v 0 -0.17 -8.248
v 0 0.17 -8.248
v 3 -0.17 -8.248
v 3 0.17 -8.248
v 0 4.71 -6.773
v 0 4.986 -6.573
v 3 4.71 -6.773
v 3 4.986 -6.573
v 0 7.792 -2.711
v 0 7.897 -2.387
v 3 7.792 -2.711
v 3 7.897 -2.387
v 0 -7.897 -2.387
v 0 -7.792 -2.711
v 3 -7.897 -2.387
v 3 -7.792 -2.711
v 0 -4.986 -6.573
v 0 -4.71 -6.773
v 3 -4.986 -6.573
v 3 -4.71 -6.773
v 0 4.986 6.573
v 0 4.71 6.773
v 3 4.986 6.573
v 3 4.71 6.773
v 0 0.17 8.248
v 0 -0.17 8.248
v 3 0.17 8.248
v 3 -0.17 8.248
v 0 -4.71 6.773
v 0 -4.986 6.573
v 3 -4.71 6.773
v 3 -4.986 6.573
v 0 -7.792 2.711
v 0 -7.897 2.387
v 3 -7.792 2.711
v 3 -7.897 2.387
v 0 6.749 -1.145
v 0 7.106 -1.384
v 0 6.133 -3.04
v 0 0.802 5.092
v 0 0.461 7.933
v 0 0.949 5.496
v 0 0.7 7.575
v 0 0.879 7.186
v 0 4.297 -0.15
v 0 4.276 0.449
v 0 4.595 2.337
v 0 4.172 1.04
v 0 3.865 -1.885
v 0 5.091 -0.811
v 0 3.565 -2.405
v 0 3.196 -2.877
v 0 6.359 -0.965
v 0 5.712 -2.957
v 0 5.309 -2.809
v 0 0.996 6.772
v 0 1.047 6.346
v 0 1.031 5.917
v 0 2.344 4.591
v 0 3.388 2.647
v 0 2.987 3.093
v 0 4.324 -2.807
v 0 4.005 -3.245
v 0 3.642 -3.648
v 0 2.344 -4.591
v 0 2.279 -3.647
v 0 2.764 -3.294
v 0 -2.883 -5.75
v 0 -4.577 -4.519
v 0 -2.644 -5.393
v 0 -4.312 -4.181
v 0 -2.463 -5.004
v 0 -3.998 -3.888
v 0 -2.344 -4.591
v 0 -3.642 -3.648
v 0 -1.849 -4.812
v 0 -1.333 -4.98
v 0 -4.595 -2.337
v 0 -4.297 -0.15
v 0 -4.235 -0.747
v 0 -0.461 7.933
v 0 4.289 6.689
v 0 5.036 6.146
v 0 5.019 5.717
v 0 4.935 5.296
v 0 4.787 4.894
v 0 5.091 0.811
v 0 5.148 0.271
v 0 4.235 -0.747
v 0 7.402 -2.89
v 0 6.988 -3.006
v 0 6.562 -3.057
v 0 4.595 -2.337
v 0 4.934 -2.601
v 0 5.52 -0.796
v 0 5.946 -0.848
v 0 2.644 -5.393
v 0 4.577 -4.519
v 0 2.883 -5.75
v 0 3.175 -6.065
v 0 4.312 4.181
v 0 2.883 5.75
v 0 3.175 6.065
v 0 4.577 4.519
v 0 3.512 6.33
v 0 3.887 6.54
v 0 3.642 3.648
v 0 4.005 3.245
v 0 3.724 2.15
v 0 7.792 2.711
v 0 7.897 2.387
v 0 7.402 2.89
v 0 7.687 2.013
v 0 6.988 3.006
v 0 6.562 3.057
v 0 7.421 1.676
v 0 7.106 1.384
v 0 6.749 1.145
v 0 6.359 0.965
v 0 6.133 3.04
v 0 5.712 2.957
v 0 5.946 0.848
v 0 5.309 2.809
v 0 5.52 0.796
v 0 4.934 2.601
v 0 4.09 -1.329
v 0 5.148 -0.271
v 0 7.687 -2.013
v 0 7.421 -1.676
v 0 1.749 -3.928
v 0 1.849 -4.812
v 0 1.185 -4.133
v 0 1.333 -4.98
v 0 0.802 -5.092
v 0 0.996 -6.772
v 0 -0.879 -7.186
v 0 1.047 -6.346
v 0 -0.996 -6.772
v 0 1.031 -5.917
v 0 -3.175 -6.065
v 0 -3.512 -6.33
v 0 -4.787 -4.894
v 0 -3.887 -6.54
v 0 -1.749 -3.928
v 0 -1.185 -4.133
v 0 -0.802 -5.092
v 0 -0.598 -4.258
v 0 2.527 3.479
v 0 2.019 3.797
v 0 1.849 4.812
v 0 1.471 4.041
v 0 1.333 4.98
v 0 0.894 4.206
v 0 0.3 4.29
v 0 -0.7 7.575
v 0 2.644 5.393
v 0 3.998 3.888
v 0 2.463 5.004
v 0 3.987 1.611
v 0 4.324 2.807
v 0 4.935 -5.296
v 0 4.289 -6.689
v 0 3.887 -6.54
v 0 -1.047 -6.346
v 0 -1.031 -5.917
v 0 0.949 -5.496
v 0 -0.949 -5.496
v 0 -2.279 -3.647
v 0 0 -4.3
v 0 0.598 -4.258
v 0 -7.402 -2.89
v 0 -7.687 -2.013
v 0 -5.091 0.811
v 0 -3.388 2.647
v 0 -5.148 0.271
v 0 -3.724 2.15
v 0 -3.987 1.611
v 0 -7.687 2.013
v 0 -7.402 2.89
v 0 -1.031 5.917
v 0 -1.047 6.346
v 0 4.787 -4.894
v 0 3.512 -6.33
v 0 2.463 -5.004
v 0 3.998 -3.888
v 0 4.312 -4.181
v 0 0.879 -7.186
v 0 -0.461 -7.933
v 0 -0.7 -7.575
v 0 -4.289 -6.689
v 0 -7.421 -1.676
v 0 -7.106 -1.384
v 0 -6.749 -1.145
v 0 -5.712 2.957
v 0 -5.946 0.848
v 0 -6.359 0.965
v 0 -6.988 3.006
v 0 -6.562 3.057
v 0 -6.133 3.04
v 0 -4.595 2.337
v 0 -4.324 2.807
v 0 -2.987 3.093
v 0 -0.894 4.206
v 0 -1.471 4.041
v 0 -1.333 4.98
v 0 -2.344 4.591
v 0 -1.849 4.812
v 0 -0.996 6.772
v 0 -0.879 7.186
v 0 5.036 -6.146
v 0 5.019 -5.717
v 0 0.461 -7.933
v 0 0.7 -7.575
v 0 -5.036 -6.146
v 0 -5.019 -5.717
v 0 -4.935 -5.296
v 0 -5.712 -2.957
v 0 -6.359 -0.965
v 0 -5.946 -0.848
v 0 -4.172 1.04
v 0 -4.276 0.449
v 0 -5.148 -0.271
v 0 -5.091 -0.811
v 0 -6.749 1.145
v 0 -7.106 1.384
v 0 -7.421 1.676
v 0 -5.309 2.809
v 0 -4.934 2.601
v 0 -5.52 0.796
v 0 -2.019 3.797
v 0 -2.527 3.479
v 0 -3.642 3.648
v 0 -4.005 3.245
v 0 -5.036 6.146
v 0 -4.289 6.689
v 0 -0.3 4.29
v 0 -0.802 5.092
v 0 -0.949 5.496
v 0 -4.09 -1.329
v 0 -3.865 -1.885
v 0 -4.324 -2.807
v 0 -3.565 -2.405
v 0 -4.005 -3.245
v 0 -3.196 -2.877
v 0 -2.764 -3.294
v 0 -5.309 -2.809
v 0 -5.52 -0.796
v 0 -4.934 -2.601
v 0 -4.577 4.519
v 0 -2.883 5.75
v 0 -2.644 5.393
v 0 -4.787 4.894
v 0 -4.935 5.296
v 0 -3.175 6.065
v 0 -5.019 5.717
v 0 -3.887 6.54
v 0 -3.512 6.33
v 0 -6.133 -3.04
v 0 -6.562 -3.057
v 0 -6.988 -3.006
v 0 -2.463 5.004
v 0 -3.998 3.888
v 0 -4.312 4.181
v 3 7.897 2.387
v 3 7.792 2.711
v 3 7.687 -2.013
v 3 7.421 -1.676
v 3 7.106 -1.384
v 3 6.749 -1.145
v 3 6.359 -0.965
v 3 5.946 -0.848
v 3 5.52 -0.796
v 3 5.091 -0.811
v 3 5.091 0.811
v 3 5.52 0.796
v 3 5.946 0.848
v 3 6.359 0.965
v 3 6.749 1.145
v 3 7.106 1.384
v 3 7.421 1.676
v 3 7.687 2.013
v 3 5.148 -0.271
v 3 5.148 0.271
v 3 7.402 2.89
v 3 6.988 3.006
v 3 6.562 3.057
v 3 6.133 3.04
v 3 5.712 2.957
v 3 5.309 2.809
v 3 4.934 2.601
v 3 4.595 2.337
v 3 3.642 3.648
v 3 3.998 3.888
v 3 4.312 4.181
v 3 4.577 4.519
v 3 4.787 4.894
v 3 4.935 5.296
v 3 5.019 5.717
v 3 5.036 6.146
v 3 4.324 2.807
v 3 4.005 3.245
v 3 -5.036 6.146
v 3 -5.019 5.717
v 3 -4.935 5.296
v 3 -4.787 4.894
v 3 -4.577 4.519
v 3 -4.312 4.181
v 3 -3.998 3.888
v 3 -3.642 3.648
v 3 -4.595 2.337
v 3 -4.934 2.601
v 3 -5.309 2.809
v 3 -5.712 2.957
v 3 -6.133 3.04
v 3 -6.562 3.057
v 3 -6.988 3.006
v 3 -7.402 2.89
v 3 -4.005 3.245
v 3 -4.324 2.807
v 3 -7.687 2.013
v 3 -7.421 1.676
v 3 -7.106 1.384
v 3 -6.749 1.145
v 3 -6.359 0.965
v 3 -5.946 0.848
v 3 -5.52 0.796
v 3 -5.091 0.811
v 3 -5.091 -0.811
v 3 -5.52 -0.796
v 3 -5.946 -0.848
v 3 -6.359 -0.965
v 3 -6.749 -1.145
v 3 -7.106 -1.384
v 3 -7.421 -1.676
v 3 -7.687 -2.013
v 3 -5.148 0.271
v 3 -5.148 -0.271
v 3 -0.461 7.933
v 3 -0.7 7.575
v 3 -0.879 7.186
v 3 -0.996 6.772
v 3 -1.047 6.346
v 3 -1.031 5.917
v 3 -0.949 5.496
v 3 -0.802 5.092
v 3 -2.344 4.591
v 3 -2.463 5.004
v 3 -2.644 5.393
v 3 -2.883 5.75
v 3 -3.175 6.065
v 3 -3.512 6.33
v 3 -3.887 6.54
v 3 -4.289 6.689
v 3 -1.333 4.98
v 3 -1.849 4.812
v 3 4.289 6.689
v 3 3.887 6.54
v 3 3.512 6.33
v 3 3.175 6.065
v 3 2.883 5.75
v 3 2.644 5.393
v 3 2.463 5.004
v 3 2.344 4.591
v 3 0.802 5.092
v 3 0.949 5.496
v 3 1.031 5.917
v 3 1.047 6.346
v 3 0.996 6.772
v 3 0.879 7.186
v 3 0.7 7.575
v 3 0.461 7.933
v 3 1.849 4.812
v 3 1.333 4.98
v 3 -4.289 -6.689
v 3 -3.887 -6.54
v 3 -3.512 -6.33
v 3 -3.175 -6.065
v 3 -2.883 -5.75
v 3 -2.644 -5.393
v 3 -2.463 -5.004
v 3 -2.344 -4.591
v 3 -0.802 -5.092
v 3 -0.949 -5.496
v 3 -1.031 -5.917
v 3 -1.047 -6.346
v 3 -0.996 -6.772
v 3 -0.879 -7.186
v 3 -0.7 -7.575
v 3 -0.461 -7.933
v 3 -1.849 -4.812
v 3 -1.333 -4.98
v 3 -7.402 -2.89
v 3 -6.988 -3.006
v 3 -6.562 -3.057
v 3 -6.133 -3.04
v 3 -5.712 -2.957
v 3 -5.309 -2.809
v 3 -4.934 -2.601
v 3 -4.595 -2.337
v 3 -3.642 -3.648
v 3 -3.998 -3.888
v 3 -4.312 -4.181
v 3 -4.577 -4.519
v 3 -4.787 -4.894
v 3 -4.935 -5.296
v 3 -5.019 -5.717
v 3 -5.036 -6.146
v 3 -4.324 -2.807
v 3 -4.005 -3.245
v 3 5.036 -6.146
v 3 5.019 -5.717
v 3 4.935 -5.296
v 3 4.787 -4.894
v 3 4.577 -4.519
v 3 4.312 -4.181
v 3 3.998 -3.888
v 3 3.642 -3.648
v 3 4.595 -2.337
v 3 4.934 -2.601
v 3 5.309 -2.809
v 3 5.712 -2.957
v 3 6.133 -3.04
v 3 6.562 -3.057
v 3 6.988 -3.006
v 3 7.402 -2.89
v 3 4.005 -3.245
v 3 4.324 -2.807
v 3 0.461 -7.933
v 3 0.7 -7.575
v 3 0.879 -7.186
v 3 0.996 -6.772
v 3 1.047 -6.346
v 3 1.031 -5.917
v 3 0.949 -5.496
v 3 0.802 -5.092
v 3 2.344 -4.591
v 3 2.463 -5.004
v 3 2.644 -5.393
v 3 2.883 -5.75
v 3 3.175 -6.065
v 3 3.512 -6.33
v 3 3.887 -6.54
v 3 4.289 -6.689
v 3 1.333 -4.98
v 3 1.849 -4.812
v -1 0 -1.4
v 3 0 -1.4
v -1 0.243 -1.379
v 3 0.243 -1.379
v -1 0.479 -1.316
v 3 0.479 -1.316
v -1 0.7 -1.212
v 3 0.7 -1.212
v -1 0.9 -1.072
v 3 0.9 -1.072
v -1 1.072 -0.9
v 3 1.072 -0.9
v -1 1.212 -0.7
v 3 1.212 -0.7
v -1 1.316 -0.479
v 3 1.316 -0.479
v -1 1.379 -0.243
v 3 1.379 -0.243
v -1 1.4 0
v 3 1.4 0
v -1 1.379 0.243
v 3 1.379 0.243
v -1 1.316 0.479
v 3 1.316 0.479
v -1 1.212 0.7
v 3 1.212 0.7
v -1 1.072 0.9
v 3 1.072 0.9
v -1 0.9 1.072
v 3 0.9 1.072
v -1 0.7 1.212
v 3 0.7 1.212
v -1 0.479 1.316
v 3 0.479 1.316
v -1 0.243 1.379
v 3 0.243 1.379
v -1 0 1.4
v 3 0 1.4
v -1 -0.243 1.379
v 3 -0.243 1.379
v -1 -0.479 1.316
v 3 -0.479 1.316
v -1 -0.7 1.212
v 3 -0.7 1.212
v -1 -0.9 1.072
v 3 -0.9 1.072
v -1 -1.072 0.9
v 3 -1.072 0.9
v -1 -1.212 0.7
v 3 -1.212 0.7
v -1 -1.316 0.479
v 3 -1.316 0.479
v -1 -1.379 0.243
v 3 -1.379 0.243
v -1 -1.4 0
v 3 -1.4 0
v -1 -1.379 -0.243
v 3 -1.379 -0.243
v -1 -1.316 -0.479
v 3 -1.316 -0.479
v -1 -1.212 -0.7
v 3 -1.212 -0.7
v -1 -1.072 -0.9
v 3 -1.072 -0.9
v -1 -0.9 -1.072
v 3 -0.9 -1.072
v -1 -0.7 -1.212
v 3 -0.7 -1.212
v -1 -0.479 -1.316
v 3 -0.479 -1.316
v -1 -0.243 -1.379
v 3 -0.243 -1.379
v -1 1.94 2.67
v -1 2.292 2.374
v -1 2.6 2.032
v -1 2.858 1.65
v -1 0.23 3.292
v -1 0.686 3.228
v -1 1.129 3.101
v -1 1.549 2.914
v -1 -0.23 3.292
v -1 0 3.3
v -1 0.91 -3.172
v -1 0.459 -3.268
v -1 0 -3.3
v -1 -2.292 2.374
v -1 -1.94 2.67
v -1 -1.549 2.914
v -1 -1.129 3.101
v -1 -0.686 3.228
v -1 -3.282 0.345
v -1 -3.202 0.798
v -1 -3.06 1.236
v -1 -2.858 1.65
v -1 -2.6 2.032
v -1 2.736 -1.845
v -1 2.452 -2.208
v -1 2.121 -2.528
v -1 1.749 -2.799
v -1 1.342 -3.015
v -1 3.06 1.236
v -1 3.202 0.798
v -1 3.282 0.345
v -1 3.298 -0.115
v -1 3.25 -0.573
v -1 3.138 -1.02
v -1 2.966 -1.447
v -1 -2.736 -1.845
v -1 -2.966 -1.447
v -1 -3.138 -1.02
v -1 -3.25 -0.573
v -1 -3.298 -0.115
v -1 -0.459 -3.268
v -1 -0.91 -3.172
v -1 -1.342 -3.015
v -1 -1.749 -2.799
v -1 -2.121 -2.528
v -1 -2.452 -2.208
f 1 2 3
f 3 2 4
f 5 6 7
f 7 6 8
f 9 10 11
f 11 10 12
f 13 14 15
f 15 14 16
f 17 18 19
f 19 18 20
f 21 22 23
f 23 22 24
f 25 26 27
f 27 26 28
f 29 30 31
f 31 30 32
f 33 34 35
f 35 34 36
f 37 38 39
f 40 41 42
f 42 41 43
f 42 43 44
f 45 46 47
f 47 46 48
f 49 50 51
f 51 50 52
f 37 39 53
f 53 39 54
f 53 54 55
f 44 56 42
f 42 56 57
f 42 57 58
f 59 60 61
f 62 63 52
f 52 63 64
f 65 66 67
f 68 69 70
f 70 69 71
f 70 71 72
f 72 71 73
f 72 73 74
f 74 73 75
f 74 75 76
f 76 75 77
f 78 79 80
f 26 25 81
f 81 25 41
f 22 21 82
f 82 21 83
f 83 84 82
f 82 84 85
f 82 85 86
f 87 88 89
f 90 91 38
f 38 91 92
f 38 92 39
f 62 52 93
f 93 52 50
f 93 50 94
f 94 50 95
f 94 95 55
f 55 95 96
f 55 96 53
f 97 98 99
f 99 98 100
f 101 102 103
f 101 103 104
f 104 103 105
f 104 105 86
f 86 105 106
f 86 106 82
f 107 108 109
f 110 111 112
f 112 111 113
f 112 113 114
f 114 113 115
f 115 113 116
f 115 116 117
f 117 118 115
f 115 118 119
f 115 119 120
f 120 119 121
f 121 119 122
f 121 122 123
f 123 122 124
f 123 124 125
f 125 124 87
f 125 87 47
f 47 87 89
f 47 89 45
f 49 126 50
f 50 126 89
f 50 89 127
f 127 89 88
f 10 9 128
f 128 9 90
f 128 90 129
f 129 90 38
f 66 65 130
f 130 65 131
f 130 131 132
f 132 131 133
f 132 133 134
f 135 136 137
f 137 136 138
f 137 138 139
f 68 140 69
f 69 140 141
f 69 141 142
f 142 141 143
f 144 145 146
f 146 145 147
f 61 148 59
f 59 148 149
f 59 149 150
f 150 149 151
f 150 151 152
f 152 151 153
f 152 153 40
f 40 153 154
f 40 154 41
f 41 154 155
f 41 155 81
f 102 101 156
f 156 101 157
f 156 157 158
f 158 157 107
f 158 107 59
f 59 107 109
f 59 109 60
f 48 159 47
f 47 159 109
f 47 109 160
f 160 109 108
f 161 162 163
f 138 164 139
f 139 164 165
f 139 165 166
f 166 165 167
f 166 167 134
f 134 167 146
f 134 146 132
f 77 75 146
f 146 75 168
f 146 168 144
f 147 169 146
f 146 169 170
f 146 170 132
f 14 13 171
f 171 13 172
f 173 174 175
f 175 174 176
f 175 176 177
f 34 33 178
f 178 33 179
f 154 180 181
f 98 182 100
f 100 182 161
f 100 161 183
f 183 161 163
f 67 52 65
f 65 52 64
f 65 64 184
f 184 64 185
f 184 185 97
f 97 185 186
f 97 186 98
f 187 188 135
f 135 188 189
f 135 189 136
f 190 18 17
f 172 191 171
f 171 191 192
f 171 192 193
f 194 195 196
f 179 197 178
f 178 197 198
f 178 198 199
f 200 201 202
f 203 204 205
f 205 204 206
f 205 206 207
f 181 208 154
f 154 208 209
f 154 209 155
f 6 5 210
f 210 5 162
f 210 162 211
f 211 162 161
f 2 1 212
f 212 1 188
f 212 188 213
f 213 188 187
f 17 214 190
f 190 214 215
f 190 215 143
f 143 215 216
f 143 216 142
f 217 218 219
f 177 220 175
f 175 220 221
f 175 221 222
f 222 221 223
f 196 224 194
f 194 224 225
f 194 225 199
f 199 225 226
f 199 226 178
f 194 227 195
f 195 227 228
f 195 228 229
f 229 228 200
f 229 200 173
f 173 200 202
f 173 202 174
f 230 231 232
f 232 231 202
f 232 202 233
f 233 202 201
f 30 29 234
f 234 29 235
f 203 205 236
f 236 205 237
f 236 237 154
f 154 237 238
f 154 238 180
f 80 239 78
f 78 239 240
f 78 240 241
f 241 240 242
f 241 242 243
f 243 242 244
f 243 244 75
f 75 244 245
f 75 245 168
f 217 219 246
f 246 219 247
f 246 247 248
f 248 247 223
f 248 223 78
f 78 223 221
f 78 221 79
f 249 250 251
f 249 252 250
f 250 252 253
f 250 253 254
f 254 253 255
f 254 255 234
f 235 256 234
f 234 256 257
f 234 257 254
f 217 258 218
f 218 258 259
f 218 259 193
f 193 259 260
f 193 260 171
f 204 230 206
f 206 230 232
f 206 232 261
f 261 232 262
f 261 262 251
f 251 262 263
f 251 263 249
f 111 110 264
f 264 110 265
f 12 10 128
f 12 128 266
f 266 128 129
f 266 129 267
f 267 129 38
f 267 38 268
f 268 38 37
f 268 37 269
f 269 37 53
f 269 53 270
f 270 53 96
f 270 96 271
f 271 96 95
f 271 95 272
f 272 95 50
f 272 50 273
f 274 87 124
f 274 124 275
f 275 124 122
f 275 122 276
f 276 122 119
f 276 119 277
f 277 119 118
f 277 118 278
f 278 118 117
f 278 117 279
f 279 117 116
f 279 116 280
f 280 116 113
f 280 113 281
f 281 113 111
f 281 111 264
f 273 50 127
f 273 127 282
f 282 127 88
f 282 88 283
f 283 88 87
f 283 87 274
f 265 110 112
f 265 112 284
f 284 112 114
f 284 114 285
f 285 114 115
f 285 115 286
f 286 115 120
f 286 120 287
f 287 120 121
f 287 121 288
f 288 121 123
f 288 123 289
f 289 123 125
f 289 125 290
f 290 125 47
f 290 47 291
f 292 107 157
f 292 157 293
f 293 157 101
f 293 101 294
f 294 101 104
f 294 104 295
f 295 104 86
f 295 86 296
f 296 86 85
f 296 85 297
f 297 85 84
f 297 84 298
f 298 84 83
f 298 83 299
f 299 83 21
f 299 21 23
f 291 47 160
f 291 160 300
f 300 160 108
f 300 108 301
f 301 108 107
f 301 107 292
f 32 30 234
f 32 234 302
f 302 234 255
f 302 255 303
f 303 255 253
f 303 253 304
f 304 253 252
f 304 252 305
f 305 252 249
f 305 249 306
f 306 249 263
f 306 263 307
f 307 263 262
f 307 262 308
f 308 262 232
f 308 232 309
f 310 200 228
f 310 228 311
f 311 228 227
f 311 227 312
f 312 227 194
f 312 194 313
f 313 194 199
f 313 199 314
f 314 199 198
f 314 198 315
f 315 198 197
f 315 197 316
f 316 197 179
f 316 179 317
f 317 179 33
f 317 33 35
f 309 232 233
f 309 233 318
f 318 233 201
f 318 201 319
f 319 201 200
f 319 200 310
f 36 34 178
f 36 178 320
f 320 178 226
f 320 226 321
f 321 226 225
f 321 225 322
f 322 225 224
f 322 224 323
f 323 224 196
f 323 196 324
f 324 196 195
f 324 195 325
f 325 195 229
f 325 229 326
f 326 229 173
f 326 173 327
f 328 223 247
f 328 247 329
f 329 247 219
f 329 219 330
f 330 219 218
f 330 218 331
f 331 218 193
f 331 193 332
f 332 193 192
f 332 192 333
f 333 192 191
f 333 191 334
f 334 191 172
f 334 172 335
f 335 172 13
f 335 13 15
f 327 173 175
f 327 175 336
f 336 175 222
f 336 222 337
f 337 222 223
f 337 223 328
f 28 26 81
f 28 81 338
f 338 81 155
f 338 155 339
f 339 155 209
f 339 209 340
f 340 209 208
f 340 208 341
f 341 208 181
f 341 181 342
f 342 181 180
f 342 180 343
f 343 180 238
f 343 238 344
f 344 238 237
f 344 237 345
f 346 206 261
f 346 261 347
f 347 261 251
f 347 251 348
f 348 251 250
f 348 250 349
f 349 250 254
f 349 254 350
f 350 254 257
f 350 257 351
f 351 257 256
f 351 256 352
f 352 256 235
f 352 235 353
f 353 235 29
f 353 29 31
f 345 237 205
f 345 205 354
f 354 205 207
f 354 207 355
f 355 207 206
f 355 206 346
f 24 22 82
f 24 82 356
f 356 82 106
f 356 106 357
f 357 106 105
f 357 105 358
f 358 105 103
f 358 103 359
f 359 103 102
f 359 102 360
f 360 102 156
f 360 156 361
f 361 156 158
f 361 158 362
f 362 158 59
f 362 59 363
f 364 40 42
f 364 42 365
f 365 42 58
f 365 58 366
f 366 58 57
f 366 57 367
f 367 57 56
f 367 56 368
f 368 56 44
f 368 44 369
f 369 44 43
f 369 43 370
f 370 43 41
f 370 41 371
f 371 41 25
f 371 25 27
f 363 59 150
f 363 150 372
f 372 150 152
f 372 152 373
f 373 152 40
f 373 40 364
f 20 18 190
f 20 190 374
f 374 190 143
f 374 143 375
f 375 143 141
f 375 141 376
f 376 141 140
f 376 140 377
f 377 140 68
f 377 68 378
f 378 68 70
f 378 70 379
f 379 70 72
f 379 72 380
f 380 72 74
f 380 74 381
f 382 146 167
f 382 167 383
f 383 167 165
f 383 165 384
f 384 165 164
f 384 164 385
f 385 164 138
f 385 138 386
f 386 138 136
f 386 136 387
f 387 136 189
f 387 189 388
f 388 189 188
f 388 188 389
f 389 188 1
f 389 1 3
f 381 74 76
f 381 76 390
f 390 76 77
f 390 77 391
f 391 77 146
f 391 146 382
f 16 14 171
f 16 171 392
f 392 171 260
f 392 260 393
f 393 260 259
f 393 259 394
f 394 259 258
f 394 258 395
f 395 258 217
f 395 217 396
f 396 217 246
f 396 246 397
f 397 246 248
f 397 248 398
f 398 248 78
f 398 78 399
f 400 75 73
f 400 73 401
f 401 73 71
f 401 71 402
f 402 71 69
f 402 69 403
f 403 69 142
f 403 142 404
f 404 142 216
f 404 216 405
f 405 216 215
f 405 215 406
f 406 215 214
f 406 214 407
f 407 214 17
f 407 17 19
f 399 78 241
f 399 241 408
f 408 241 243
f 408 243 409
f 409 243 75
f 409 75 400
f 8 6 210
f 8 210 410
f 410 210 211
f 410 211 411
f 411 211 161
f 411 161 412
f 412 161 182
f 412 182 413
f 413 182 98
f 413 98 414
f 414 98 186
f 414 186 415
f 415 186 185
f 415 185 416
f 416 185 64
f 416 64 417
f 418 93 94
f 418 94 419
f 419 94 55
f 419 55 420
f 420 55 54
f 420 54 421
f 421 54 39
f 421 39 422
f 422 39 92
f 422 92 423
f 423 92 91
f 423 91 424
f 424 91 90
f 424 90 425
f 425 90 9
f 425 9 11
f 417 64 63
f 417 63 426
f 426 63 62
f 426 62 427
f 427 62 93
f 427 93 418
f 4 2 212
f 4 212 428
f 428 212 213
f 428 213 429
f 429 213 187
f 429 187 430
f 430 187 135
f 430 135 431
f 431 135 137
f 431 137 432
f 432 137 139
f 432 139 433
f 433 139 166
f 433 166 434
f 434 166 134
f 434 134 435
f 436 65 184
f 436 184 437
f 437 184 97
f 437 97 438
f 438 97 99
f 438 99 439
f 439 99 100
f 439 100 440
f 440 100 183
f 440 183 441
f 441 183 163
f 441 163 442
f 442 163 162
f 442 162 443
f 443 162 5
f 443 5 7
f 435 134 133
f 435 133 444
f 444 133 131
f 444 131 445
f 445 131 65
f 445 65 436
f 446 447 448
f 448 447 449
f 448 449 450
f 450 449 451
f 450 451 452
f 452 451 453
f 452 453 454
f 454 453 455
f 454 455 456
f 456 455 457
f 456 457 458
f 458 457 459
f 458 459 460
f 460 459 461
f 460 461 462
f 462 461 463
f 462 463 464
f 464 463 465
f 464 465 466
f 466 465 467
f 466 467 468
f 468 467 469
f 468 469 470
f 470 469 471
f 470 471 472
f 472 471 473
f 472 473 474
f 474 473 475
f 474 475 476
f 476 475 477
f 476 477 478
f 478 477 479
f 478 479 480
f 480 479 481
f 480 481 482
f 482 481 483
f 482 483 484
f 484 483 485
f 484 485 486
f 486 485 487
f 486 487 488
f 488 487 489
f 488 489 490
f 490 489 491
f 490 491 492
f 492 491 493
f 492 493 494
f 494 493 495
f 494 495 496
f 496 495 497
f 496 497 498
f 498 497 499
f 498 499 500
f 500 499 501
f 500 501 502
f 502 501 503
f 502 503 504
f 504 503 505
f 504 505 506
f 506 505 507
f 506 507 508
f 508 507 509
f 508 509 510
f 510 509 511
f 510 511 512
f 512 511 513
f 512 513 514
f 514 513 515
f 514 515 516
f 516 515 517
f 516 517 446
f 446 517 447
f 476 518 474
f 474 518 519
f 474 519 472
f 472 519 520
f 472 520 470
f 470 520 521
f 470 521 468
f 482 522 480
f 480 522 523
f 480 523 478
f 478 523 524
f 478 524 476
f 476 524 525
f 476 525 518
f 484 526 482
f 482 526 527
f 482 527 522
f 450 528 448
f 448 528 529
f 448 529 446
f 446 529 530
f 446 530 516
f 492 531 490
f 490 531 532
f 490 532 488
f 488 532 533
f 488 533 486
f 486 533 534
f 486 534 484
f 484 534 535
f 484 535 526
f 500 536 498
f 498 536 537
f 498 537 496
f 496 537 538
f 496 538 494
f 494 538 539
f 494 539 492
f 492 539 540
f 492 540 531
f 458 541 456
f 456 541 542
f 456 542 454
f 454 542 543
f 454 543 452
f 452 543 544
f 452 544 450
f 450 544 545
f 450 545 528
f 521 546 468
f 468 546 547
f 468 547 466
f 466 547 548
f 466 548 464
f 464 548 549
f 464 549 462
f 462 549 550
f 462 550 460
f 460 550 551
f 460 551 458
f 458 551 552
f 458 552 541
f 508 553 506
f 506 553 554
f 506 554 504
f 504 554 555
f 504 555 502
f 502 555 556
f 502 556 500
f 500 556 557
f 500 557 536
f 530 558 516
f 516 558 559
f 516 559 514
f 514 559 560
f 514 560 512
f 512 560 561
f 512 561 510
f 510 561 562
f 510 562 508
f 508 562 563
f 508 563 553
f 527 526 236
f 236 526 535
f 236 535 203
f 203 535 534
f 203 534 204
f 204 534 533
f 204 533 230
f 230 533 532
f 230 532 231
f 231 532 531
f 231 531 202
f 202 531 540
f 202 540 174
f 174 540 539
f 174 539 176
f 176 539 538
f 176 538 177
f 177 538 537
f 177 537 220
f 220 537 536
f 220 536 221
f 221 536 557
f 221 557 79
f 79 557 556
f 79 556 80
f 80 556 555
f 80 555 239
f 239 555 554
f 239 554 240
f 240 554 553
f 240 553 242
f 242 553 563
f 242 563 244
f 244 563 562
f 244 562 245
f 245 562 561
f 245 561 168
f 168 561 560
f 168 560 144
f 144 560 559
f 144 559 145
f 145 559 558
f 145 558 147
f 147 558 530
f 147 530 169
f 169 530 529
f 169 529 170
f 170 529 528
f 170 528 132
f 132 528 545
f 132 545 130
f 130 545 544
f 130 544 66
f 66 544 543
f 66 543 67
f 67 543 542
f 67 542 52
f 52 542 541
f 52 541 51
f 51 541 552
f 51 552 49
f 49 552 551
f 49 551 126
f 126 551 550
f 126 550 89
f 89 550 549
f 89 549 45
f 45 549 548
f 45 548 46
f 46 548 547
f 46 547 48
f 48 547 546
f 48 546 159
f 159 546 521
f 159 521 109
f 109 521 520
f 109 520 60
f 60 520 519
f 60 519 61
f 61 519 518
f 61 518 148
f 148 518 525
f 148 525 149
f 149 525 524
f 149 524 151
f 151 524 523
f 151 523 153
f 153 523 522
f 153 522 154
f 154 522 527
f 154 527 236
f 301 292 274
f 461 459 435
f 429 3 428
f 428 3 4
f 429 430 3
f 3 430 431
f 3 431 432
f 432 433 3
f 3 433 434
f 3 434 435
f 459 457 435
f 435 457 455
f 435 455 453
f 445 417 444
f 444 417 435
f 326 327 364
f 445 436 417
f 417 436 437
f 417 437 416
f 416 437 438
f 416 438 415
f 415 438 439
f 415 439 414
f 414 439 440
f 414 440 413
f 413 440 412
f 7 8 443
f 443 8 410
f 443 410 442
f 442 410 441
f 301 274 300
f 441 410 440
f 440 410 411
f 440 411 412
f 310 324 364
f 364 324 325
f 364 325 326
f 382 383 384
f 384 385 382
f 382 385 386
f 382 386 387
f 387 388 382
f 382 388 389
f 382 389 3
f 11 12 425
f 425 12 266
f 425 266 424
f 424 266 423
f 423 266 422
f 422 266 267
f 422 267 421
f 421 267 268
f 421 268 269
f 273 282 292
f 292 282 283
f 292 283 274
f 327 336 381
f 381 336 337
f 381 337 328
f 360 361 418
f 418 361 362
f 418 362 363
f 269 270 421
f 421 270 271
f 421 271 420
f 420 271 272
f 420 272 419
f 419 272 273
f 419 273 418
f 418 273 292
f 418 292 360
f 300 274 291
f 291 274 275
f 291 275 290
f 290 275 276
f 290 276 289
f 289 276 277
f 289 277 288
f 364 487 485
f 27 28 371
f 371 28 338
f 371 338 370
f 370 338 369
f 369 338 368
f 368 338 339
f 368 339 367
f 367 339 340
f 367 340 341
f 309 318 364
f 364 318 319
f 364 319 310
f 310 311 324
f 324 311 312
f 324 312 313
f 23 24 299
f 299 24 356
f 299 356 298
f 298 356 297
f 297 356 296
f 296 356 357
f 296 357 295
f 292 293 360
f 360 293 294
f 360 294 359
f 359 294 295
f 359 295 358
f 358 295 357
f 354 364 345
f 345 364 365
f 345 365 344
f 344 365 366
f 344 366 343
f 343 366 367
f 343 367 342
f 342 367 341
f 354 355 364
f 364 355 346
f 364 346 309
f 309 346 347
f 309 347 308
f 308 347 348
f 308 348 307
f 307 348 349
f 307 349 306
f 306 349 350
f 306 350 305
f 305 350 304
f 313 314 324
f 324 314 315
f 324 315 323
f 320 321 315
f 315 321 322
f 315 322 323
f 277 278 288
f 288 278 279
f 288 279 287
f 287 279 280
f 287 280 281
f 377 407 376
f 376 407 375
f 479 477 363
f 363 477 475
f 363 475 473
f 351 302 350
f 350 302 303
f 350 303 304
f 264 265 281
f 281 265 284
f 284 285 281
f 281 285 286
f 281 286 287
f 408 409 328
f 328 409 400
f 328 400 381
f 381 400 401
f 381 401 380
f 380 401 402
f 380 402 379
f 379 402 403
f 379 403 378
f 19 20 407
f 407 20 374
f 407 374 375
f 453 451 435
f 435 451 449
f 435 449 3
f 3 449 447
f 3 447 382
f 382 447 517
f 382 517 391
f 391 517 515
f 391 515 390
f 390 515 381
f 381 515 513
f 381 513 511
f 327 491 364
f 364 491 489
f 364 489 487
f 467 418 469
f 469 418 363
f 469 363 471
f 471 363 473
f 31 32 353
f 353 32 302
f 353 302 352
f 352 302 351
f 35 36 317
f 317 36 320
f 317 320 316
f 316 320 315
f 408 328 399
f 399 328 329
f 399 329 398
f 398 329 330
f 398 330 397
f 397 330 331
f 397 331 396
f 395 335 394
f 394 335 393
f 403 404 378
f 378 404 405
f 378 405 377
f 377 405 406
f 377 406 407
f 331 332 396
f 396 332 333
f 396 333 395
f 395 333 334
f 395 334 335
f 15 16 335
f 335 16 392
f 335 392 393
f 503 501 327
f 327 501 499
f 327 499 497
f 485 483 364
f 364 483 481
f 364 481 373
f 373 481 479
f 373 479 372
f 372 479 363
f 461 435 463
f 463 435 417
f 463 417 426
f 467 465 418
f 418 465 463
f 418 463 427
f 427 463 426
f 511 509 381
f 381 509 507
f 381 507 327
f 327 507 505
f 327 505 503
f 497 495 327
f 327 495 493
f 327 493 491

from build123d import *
from build123d.topology import SkipClean

# Parameters (mm, degrees)
BASPROSKE_W         = 2
BASPROSKE_H         = 8.25
TOOTHCUT_DEPTH      = 12.837440602
TEETHCUTS_COUNT     = 10
TEETHCUTS_ANGLE     = 324
BORSKE_R            = 2.5
BORE_DEPTH          = 50.0000508
SKETCH1_R           = 2.5
SKETCH1_R_2         = 1.4
BOSS_EXTRUDE1_DEPTH = 2
SKETCH2_R           = 2.8
SKETCH2_R_2         = 1.6
BOSS_EXTRUDE2_DEPTH = 1
CHAMFER1_SIZE       = 1.5
SKETCH3_R           = 1.5
BOSS_EXTRUDE3_DEPTH = 1
SKETCH4_R           = 1.6
SKETCH4_R_2         = 1.4
BOSS_EXTRUDE4_DEPTH = 1
BOSS_EXTRUDE5_START = 1
SKETCH5_R           = 1.5
SKETCH5_R_2         = 1.4
BOSS_EXTRUDE5_DEPTH = 1


with BuildPart() as part:
    # BasProSke → Base-Revolve (revolve)
    with BuildSketch(Plane(origin=(0, 0, 0), x_dir=(1, 0, 0), z_dir=(0, 1, 0)), mode=Mode.PRIVATE) as base_revolve_sk:
        with Locations((1, 4.125)):
            Rectangle(BASPROSKE_W, BASPROSKE_H)
    revolve(base_revolve_sk.sketch.rotate(Axis((-10, 0, 0), (1, 0, 0)), 180), axis=Axis((-10, 0, 0), (1, 0, 0)))

    # TooCutSke → ToothCut (cut, through all)
    with BuildSketch(Plane(origin=(0, 0, 0), x_dir=(0, 0, -1), z_dir=(1, 0, 0))):
        with BuildLine():
            ThreePointArc((0.810777273, 5.091094458), (0, 5.15525), (-0.810777273, 5.091094458))
            ThreePointArc((-0.810777273, 5.091094458), (-1.154893166, 6.765492881), (-2.421785774, 7.913102983))
            ThreePointArc((-2.421785774, 7.913102983), (0, 8.2754), (2.421785774, 7.913102983))
            ThreePointArc((2.421785774, 7.913102983), (1.154893166, 6.765492881), (0.810777273, 5.091094458))
        make_face()
    toothcut = extrude(amount=TOOTHCUT_DEPTH, mode=Mode.SUBTRACT)

    # TeethCuts: ToothCut ×10 about axis
    teethcuts_axis = Axis((-10, 0, 0), (1, 0, 0))
    for i in range(1, TEETHCUTS_COUNT):
        add(toothcut.rotate(teethcuts_axis, i * TEETHCUTS_ANGLE / (TEETHCUTS_COUNT - 1)), mode=Mode.SUBTRACT)

    # BorSke → Bore (cut, symmetric)
    with BuildSketch(Plane(origin=(0, 0, 0), x_dir=(0, 0, -1), z_dir=(1, 0, 0))):
        with Locations(Location((0, 0, 0), (0, 0, 180))):
            Circle(BORSKE_R)
    extrude(amount=BORE_DEPTH, both=True, mode=Mode.SUBTRACT)

    # Sketch1 → Boss-Extrude1 (add)
    with BuildSketch(Plane(origin=(2, 0, 0), x_dir=(0, 0, -1), z_dir=(1, 0, 0))):
        Circle(SKETCH1_R)
        Circle(SKETCH1_R_2, mode=Mode.SUBTRACT)
    extrude(amount=-BOSS_EXTRUDE1_DEPTH)

    # Sketch2 → Boss-Extrude2 (add)
    with BuildSketch(Plane.ZY):
        with Locations(Location((0, 0, 0), (0, 0, 180))):
            Circle(SKETCH2_R)
        Circle(SKETCH2_R_2, mode=Mode.SUBTRACT)
    extrude(amount=BOSS_EXTRUDE2_DEPTH)

    # Chamfer1
    # the kernel refuses this chamfer: 1.5 mm, written as the material it adds along each edge
    with BuildSketch(Plane(origin=(0, 0, 0), x_dir=(0, 0, -1), z_dir=(0, 1, 0))) as chamfer1_piece_1_section:
        Polygon((2.8 + CHAMFER1_SIZE, 0), (2.8, CHAMFER1_SIZE), (2.8, 0), align=None)
    chamfer1_piece_1 = revolve(axis=Axis((0, 0, 0), (-1, 0, 0)), mode=Mode.PRIVATE)
    chamfer1_piece_1 = split(chamfer1_piece_1, bisect_by=Plane(origin=(-1, 0, 3.801160136), z_dir=(1, 0, 0)), keep=Keep.TOP, mode=Mode.PRIVATE)
    add(chamfer1_piece_1)

    # Sketch3 → Boss-Extrude3 (add)
    with SkipClean():  # the faces are left unmerged after this step: merging them gives an invalid solid
        with BuildSketch(Plane(origin=(2, 0, 0), x_dir=(0, 0, -1), z_dir=(1, 0, 0))):
            with BuildLine():
                ThreePointArc((8.248240616, 0.170372351), (6.772423309, 0.99612057), (5.092462515, 0.802139699))
                ThreePointArc((5.092462515, 0.802139699), (4.902934106, 1.59305986), (4.591374603, 2.344329716))
                ThreePointArc((4.591374603, 2.344329716), (6.06451053, 3.174852073), (6.773109188, 4.710360064))
                ThreePointArc((6.773109188, 4.710360064), (6.674390204, 4.849228331), (6.572824477, 4.986028319))
                ThreePointArc((6.572824477, 4.986028319), (4.893500569, 4.786609013), (3.648402832, 3.642219012))
                ThreePointArc((3.648402832, 3.642219012), (3.030179922, 4.17068486), (2.336537648, 4.59534486))
                ThreePointArc((2.336537648, 4.59534486), (3.040160855, 6.133139134), (2.710880259, 7.791895034))
                ThreePointArc((2.710880259, 7.791895034), (2.549390204, 7.846216259), (2.386812789, 7.897190938))
                ThreePointArc((2.386812789, 7.897190938), (1.145426936, 6.748775503), (0.810777273, 5.091094458))
                ThreePointArc((0.810777273, 5.091094458), (0, 5.15525), (-0.810777273, 5.091094458))
                ThreePointArc((-0.810777273, 5.091094458), (-1.145426936, 6.748775503), (-2.386812789, 7.897190938))
                ThreePointArc((-2.386812789, 7.897190938), (-2.549390204, 7.846216259), (-2.710880259, 7.791895034))
                ThreePointArc((-2.710880259, 7.791895034), (-3.040160855, 6.133139134), (-2.336537648, 4.59534486))
                ThreePointArc((-2.336537648, 4.59534486), (-3.030179922, 4.17068486), (-3.648402832, 3.642219012))
                ThreePointArc((-3.648402832, 3.642219012), (-4.893500569, 4.786609013), (-6.572824477, 4.986028319))
                ThreePointArc((-6.572824477, 4.986028319), (-6.674390204, 4.849228331), (-6.773109188, 4.710360064))
                ThreePointArc((-6.773109188, 4.710360064), (-6.06451053, 3.174852073), (-4.591374603, 2.344329716))
                ThreePointArc((-4.591374603, 2.344329716), (-4.902934106, 1.59305986), (-5.092462515, 0.802139699))
                ThreePointArc((-5.092462515, 0.802139699), (-6.772423309, 0.99612057), (-8.248240616, 0.170372351))
                ThreePointArc((-8.248240616, 0.170372351), (-8.25, 0), (-8.248240616, -0.170372351))
                ThreePointArc((-8.248240616, -0.170372351), (-6.772423309, -0.99612057), (-5.092462515, -0.802139699))
                ThreePointArc((-5.092462515, -0.802139699), (-4.902934106, -1.59305986), (-4.591374603, -2.344329716))
                ThreePointArc((-4.591374603, -2.344329716), (-6.06451053, -3.174852073), (-6.773109188, -4.710360064))
                ThreePointArc((-6.773109188, -4.710360064), (-6.674390204, -4.849228331), (-6.572824477, -4.986028319))
                ThreePointArc((-6.572824477, -4.986028319), (-4.893500569, -4.786609013), (-3.648402832, -3.642219012))
                ThreePointArc((-3.648402832, -3.642219012), (-3.030179922, -4.17068486), (-2.336537648, -4.59534486))
                ThreePointArc((-2.336537648, -4.59534486), (-3.040160855, -6.133139134), (-2.710880259, -7.791895034))
                ThreePointArc((-2.710880259, -7.791895034), (-2.549390204, -7.846216259), (-2.386812789, -7.897190938))
                ThreePointArc((-2.386812789, -7.897190938), (-1.145426936, -6.748775503), (-0.810777273, -5.091094458))
                ThreePointArc((-0.810777273, -5.091094458), (0, -5.15525), (0.810777273, -5.091094458))
                ThreePointArc((0.810777273, -5.091094458), (1.145426936, -6.748775503), (2.386812789, -7.897190938))
                ThreePointArc((2.386812789, -7.897190938), (2.549390204, -7.846216259), (2.710880259, -7.791895034))
                ThreePointArc((2.710880259, -7.791895034), (3.040160855, -6.133139134), (2.336537648, -4.59534486))
                ThreePointArc((2.336537648, -4.59534486), (3.030179922, -4.17068486), (3.648402832, -3.642219012))
                ThreePointArc((3.648402832, -3.642219012), (4.893500569, -4.786609013), (6.572824477, -4.986028319))
                ThreePointArc((6.572824477, -4.986028319), (6.674390204, -4.849228331), (6.773109188, -4.710360064))
                ThreePointArc((6.773109188, -4.710360064), (6.06451053, -3.174852073), (4.591374603, -2.344329716))
                ThreePointArc((4.591374603, -2.344329716), (4.902934106, -1.59305986), (5.092462515, -0.802139699))
                ThreePointArc((5.092462515, -0.802139699), (6.772423309, -0.99612057), (8.248240616, -0.170372351))
                ThreePointArc((8.248240616, -0.170372351), (8.25, 0), (8.248240616, 0.170372351))
            make_face()
            Circle(SKETCH3_R, mode=Mode.SUBTRACT)
        extrude(amount=BOSS_EXTRUDE3_DEPTH)

    # Sketch4 → Boss-Extrude4 (add)
    with SkipClean():  # the faces are left unmerged after this step: merging them gives an invalid solid
        with BuildSketch(Plane.ZY):
            Circle(SKETCH4_R)
            with Locations(Location((0, 0, 0), (0, 0, 180))):
                Circle(SKETCH4_R_2, mode=Mode.SUBTRACT)
        extrude(amount=BOSS_EXTRUDE4_DEPTH)

    # Sketch5 → Boss-Extrude5 (add)
    with SkipClean():  # the faces are left unmerged after this step: merging them gives an invalid solid
        with BuildSketch(Plane(origin=(2, 0, 0), x_dir=(0, 0, -1), z_dir=(1, 0, 0)).offset(BOSS_EXTRUDE5_START)):
            Circle(SKETCH5_R)
            Circle(SKETCH5_R_2, mode=Mode.SUBTRACT)
        extrude(amount=-BOSS_EXTRUDE5_DEPTH)


solid = part.part
